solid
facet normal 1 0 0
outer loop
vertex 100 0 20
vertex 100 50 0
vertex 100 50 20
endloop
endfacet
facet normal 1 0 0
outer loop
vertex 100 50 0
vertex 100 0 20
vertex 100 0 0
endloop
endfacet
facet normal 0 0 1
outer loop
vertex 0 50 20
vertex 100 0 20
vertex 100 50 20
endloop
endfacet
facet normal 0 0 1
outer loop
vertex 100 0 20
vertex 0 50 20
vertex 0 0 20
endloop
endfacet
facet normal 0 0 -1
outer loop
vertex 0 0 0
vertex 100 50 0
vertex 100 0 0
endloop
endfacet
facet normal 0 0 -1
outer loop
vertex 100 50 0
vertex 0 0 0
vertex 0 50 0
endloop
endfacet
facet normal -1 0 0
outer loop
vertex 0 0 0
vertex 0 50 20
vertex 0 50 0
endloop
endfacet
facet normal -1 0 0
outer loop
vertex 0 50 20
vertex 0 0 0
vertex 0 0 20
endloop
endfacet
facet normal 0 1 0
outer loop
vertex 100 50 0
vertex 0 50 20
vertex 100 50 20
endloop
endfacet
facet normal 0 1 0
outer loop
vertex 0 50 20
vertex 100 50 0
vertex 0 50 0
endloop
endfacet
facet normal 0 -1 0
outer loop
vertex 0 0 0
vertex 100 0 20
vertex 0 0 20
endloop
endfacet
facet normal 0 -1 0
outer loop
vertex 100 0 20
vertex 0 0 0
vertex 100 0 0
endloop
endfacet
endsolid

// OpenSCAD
width = 100;
depth = 50;
height = 20;

difference() {
  cube([width, depth, height]);
  translate([10, 10, 10]) cube([width - 20, depth - 20, height - 20]);
}
